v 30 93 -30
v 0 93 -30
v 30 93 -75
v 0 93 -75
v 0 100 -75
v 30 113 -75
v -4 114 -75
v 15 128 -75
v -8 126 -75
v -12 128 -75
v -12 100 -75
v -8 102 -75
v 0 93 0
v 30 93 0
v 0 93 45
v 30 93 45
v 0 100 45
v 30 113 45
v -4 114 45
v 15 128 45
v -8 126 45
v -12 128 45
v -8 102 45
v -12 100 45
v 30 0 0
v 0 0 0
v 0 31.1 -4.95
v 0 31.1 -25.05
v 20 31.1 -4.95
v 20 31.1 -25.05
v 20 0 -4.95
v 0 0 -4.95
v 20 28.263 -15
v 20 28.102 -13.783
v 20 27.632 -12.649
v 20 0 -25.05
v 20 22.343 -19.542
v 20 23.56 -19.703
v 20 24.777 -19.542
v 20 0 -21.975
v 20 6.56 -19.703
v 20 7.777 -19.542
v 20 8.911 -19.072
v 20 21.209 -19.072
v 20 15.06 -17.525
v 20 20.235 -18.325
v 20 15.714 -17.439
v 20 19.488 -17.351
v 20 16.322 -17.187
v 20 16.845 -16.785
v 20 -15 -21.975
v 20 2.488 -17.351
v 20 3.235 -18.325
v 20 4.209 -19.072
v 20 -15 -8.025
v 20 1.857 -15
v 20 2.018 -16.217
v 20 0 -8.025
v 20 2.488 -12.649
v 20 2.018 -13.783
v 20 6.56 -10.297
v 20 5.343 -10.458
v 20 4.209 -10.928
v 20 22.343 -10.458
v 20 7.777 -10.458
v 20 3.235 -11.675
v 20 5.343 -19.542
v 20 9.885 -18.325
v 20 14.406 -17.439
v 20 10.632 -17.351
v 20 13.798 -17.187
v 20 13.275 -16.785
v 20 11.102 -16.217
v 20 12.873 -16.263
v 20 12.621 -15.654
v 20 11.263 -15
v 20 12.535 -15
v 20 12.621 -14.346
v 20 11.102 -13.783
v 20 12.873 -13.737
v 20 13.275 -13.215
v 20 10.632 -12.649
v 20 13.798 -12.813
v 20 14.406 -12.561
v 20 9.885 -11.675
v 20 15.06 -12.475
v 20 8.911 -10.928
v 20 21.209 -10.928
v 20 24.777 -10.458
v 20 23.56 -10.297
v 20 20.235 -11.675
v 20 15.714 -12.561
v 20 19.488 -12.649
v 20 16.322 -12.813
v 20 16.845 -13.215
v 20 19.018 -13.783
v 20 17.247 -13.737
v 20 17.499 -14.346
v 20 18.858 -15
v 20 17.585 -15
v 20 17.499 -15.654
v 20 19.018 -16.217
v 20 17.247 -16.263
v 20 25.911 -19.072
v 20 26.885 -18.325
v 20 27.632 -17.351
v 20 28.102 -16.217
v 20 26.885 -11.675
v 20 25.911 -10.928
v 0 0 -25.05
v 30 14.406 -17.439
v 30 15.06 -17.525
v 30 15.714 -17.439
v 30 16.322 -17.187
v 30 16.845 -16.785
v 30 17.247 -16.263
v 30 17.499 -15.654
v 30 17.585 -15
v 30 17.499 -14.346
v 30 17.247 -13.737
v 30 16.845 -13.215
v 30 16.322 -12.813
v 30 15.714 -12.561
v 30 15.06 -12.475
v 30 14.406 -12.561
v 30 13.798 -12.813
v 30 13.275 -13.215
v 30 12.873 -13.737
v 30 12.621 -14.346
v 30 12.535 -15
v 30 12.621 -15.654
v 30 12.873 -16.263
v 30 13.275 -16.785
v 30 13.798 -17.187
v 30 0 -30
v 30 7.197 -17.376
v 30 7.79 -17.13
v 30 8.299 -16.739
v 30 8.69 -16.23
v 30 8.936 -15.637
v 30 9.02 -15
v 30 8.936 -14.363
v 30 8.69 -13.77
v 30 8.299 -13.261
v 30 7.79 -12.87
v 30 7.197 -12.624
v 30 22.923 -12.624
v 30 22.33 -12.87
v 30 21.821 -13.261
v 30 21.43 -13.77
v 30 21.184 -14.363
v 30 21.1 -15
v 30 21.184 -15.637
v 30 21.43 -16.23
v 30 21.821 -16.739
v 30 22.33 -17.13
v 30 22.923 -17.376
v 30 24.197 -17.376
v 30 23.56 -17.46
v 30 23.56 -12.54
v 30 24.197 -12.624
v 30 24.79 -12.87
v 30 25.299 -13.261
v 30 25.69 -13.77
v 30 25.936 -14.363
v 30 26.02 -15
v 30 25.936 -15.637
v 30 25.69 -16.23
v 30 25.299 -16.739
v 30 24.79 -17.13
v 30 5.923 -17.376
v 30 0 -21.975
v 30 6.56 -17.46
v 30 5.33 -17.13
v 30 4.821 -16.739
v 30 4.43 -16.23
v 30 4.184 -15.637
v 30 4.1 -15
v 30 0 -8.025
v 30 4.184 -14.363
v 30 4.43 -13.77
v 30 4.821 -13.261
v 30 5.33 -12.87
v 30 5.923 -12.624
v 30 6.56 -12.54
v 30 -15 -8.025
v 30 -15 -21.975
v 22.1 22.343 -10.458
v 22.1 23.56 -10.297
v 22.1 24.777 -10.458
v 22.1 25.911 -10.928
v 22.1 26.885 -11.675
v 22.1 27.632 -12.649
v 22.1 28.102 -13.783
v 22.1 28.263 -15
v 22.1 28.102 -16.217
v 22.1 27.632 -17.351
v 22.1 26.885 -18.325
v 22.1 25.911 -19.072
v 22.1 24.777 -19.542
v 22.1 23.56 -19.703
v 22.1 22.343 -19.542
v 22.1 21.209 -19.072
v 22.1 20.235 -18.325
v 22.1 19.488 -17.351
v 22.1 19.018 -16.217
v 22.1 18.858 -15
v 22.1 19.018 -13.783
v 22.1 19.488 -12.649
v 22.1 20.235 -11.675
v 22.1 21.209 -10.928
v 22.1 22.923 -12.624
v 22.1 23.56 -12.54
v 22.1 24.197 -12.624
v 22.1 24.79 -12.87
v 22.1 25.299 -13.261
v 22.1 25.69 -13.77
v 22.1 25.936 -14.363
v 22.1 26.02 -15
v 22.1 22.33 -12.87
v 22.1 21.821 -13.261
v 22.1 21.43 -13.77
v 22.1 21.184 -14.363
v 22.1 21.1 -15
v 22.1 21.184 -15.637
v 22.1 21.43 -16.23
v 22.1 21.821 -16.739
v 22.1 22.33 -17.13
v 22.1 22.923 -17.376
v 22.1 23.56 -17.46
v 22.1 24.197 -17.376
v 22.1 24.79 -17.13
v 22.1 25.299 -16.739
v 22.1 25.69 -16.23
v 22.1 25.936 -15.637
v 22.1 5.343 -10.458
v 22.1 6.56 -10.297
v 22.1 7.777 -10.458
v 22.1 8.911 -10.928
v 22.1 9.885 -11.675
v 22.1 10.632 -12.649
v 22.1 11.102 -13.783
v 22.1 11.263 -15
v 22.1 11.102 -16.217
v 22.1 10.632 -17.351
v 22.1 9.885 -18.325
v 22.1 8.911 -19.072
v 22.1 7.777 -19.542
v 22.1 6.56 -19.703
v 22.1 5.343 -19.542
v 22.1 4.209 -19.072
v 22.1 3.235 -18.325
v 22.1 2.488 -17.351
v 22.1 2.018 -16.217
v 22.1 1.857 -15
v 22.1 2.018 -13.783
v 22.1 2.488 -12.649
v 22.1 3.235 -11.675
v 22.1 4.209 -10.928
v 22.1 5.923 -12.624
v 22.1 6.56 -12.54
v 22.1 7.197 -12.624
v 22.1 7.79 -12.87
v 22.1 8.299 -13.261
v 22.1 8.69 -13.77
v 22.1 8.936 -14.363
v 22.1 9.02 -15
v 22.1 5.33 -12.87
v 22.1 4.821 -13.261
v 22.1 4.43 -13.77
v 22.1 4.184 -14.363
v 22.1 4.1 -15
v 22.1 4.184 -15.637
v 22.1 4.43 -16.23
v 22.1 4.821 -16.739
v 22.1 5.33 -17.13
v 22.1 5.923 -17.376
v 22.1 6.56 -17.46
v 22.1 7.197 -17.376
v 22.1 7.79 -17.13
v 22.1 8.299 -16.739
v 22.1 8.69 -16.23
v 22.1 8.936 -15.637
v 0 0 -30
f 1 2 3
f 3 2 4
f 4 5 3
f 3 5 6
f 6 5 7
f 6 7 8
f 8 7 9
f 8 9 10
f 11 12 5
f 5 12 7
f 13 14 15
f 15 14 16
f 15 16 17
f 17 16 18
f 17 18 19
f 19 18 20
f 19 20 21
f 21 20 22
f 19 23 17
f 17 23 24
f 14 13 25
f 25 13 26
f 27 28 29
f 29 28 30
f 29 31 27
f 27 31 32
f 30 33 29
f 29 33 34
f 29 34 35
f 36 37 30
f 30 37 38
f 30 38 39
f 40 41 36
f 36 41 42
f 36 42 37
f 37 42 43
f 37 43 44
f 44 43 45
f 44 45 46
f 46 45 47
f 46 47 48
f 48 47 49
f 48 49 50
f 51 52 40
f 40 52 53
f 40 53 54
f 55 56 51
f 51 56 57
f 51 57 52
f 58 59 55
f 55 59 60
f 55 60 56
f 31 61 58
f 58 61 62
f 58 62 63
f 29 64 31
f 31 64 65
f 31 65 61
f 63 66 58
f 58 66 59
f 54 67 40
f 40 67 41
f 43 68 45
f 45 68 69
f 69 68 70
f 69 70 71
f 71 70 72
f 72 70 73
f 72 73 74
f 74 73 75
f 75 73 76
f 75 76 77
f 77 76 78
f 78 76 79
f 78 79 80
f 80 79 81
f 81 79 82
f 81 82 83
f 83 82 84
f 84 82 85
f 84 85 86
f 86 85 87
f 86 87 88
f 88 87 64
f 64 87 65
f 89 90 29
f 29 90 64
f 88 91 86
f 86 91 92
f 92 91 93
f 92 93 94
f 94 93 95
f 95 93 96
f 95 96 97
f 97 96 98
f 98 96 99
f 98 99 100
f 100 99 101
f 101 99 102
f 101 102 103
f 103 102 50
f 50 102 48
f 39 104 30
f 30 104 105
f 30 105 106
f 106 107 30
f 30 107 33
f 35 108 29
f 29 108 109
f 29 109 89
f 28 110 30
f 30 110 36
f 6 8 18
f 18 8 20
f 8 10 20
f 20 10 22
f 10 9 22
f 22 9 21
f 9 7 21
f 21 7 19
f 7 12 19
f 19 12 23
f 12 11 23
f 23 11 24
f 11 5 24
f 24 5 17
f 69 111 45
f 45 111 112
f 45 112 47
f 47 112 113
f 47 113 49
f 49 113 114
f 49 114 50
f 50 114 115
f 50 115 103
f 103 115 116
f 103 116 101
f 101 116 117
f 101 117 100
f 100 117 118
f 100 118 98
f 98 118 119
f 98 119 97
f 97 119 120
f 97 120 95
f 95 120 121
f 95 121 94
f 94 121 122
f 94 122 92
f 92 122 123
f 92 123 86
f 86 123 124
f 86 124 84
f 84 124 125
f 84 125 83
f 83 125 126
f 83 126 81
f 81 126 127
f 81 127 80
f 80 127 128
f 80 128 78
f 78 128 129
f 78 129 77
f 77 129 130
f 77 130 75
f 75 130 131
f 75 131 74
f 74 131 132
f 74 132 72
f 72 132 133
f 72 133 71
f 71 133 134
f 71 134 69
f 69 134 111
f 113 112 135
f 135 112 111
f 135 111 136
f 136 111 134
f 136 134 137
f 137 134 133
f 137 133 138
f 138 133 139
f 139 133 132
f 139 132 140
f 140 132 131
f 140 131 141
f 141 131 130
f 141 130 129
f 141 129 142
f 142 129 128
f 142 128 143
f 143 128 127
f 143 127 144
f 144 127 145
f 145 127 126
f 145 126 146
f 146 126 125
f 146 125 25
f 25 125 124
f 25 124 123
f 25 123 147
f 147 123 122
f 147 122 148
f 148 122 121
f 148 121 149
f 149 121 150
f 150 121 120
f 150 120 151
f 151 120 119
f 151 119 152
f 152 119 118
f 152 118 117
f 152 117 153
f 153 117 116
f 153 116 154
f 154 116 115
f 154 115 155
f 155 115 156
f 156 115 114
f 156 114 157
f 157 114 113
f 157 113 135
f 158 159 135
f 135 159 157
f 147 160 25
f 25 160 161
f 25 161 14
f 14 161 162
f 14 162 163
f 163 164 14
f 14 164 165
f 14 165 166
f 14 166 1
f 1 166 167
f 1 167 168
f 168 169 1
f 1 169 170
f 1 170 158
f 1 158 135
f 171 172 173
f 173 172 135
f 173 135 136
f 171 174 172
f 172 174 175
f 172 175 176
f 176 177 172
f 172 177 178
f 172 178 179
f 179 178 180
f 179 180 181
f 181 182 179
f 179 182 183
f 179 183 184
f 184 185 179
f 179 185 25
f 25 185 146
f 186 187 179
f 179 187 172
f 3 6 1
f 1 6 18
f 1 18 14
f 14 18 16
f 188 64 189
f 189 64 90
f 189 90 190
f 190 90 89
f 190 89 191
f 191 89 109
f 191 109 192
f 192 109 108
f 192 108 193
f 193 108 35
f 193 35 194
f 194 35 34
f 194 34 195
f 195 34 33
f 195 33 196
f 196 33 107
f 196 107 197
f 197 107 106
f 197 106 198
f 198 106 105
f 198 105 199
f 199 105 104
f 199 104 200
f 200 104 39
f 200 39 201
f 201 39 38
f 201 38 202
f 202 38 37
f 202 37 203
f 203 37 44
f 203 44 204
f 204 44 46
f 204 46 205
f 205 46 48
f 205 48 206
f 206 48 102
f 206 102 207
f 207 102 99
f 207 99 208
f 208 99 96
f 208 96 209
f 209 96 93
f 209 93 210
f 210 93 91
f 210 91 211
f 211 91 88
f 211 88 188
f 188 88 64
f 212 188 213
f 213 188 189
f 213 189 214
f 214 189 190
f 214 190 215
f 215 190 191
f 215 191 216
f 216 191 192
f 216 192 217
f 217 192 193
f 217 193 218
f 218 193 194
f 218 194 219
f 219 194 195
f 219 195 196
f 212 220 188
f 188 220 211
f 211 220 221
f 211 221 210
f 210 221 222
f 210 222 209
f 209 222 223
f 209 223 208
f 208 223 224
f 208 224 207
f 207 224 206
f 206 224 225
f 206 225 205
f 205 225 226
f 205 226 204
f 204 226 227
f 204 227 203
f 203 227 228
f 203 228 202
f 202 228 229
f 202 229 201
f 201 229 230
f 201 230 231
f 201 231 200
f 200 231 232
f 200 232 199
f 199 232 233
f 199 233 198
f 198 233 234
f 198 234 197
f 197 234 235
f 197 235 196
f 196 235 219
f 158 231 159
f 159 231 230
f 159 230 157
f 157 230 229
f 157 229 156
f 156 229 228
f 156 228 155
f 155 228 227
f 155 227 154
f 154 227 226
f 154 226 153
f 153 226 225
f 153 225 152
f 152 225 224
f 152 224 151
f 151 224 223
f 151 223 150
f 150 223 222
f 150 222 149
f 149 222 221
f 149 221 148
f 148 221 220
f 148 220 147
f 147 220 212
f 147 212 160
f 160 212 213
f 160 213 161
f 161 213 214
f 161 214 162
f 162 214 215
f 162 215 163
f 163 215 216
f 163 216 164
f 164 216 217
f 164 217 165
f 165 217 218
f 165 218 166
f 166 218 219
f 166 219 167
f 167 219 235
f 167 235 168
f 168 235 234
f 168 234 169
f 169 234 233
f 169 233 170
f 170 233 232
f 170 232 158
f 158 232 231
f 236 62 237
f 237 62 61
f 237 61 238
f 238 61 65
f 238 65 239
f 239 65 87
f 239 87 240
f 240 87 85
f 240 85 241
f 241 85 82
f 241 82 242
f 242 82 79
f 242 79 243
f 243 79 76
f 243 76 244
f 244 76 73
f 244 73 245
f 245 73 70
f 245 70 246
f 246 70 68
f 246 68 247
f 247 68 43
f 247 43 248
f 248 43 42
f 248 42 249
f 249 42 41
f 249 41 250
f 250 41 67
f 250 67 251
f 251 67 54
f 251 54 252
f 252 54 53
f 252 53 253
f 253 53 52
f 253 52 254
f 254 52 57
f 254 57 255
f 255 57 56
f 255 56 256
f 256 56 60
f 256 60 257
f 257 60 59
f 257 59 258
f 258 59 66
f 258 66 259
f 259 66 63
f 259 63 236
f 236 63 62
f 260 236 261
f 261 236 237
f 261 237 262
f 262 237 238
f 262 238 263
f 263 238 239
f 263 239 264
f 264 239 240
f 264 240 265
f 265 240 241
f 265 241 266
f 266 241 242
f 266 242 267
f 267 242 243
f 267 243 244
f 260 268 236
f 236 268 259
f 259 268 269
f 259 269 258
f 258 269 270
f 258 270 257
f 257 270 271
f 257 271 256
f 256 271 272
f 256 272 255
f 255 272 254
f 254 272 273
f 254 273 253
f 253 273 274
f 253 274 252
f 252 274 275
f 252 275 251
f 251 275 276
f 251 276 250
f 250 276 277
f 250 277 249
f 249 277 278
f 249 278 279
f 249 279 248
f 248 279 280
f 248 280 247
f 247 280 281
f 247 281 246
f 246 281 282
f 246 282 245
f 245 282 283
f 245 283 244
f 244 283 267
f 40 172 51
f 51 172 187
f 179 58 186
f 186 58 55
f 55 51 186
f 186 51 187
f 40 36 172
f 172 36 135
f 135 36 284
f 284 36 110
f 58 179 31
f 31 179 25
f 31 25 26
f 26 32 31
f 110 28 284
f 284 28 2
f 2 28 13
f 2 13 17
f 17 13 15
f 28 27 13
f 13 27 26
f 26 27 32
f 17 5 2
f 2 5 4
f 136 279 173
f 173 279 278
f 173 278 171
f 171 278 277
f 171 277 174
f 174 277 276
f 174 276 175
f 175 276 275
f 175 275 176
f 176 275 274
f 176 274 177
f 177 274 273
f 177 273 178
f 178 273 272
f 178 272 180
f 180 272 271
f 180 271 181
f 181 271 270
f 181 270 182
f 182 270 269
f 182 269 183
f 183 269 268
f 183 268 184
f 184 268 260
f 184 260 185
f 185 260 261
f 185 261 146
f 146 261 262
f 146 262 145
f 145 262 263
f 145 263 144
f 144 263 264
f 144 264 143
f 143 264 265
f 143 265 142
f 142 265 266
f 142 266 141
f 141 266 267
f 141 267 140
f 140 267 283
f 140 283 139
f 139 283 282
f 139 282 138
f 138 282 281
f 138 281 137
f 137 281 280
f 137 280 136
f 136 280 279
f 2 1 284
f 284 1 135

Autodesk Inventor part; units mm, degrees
ref_plane "YZ Plane" through (0, 0, 0) normal (1, 0, 0) x (0, 1, 0)
ref_plane "XZ Plane" through (0, 0, 0) normal (0, 1, 0) x (-1, 0, 0)
sketch "Sketch1" plane through (0, 0, 0) normal (0, 0, 1) x (1, 0, 0)
  line L0 (0, 0) -> (25, 0)
  line L1 (25, 0) -> (25, 40)
  line L2 (25, 40) -> (0, 40)
  line L3 (0, 40) -> (0, 0)
  dimension "d1" = 25
  dimension "d2" = 40
  dimension "d3" = 25
extrude "Extrusion1" add sketch "Sketch1" against normal blind 30
sketch "Sketch2" plane through (25, 0, 0) normal (1, 0, 0) x (0, 0, -1)
  line L0 (0, 0) -> (30, 0) projected
  circle A0 centre (15, 6.56) radius 2.46
extrude "Extrusion2" cut sketch "Sketch2" against normal blind 30
sketch "Sketch3" plane through (0, 0, 0) normal (-1, 0, 0) x (0, 0, 1)
  line L0 (0, 0) -> (-30, 0) projected
  line L1 (-25.05, 0) -> (-4.95, 0)
  line L2 (-4.95, 0) -> (-4.95, 33.12)
  line L3 (-4.95, 33.12) -> (-25.05, 33.12)
  line L4 (-25.05, 33.12) -> (-25.05, 0)
  dimension "d11" = 20.1
extrude "Extrusion3" cut sketch "Sketch3" against normal blind 20
sketch "Sketch4" plane through (0, 0, 0) normal (0, -1, 0) x (1, 0, 0)
  line L0 (20, -4.95) -> (20, -25.05) projected
  line L1 (20, -15) -> (25, -15)
  line L2 (25, 0) -> (25, -30) projected
  line L3 (20, -8.025) -> (25, -8.025)
  line L4 (25, -8.025) -> (25, -21.975)
  line L5 (25, -21.975) -> (20, -21.975)
  line L6 (20, -21.975) -> (20, -8.025)
  line L7 (20, -8.025) -> (25, -21.975) construction
  line L8 (25, -8.025) -> (20, -21.975) construction
  line L9 (25, -12.54) -> (25, -17.46) projected
  point P0 (0, 0)
  point P1 (22.5, -15)
  dimension "d14" = 13.95
extrude "Extrusion4" add sketch "Sketch4" along normal blind 15
sketch "Sketch5" plane through (20, 0, 0) normal (-1, 0, 0) x (0, 0, 1)
  circle A0 centre (-15, 6.56) radius 2.46 projected
  circle A1 centre (-15, 6.56) radius 4.7025
  circle A2 centre (-15, 6.56) radius 2.46 projected
  circle A3 centre (-15, 6.56) radius 2.46
  point P0 (0, 0)
  dimension "d17" = 9.405
extrude "Extrusion5" cut sketch "Sketch5" against normal blind 2.1
sketch "Sketch6" plane through (25, 0, 0) normal (1, 0, 0) x (0, 0, -1)
  circle A0 centre (15, 6.56) radius 4.7025 projected
  line L0 (15, 6.56) -> (15, 23.56)
  circle A1 centre (15, 23.56) radius 2.46
  point P0 (0, 0)
  dimension "d20" = 17
  dimension "d21" = 4.92
extrude "Extrusion6" cut sketch "Sketch6" against normal blind 10 contours A1
sketch "Sketch7" plane through (20, 0, 0) normal (-1, 0, 0) x (0, 0, 1)
  circle A0 centre (-15, 23.56) radius 2.46 projected
  circle A1 centre (-15, 23.56) radius 4.7025
  point P0 (0, 0)
  dimension "d24" = 9.405
extrude "Extrusion7" cut sketch "Sketch7" against normal blind 2.1
sketch "Sketch9" plane through (25, 0, 0) normal (1, 0, 0) x (0, 0, -1)
  circle A0 centre (15, 6.56) radius 2.46 projected
  circle A1 centre (15, 6.56) radius 2.46
  circle A2 centre (15, 23.56) radius 2.46 projected
  circle A3 centre (15, 23.56) radius 2.46
  line L0 (30, 40) -> (30, 0) projected
  line L1 (30, 0) -> (30, 40)
  line L2 (30, 40) -> (0, 40)
  line L3 (0, 40) -> (0, 0)
  line L4 (0, 0) -> (8.025, 0) projected
  line L5 (21.975, 0) -> (21.975, -15)
  line L6 (21.975, -15) -> (8.025, -15)
  line L7 (8.025, -15) -> (8.025, 0)
  line L8 (0, 0) -> (8.025, 0)
  line L9 (21.975, 0) -> (30, 0)
extrude "Extrusion8" add sketch "Sketch9" along normal blind 5
sketch "Sketch10" plane through (0, 40, 0) normal (0, 1, 0) x (1, 0, 0)
  line L0 (0, 30) -> (30, 30) projected
  line L1 (30, 0) -> (0, 0) projected
  line L2 (0, 30) -> (30, 30)
  line L3 (30, 30) -> (30, 0)
  line L4 (30, 0) -> (0, 0)
  line L5 (0, 0) -> (0, 30)
extrude "Extrusion9" add sketch "Sketch10" along normal blind 30
sketch "Sketch12" plane through (30, 0, 0) normal (1, 0, 0) x (0, 0, -1)
  circle A0 centre (15, 6.56) radius 2.46 projected
  line L0 (15, 6.56) -> (15, 15.06)
  circle A1 centre (15, 15.06) radius 2.525
  point P0 (0, 0)
  dimension "d31" = 8.5
  dimension "d33" = 5.05
extrude "Extrusion10" cut sketch "Sketch12" against normal blind 30 contours A1
sketch "Sketch14" plane through (0, 0, 0) normal (0, 0, 1) x (1, 0, 0)
  line L0 (30, 70) -> (0, 70) projected
  line L1 (0, 70) -> (0, 85)
  line L2 (30, 0) -> (30, 70) projected
  line L3 (30, 113) -> (30, 70)
  line L4 (30, 105) -> (30, 100)
  line L5 (-12, 128) -> (15, 128)
  line L6 (-8, 126) -> (-12, 128)
  line L7 (-8, 126) -> (-4, 114)
  line L8 (-8, 102) -> (-12, 100)
  line L9 (-8, 102) -> (-4, 114)
  line L10 (30, 113) -> (15, 128)
  line L11 (0, 100) -> (-12, 100)
  line L12 (0, 100) -> (0, 85)
  point P0 (0, 0)
  dimension "d69" = 28
  dimension "d74" = 12
extrude "Extrusion12" add sketch "Sketch14" against normal blind 30
sketch "Sketch15" plane through (0, 0, -25.05) normal (-1, 0, 0) x (0, 0, 1)
  line L0 (0, 33.12) -> (20.1, 33.12) projected
  line L1 (20.1, 33.12) -> (20.1, 0) projected
  line L2 (0, 33.12) -> (20.1, 33.12)
  line L3 (20.1, 33.12) -> (20.1, 31.1)
  line L4 (20.1, 31.1) -> (0, 31.1)
  line L5 (0, 31.1) -> (0, 33.12)
  point P0 (25.05, 0)
  dimension "d57" = 2.02
extrude "Extrusion13" add sketch "Sketch15" against normal blind 20
sketch "Sketch21" plane through (0, 0, 0) normal (0, 0, 1) x (1, 0, 0)
  line L0 (0, 100) -> (-12, 100) projected
  line L1 (0, 100) -> (-12, 100)
  line L2 (-12, 100) -> (-8, 102) projected
  line L3 (-12, 100) -> (-8, 102)
  line L4 (-8, 102) -> (-4, 114) projected
  line L5 (-8, 102) -> (-4, 114)
  line L6 (-4, 114) -> (-8, 126) projected
  line L7 (-4, 114) -> (-8, 126)
  line L8 (-8, 126) -> (-12, 128) projected
  line L9 (-8, 126) -> (-12, 128)
  line L10 (-12, 128) -> (15, 128) projected
  line L11 (-12, 128) -> (15, 128)
  line L12 (15, 128) -> (30, 113) projected
  line L13 (15, 128) -> (30, 113)
  line L14 (30, 113) -> (30, 93)
  line L15 (30, 0) -> (30, 113) projected
  line L16 (30, 93) -> (0, 93)
  line L17 (0, 93) -> (0, 100)
  point P0 (0, 0)
  dimension "d75" = 20
  dimension "d76" = 30
extrude "Extrusion14" add sketch "Sketch21" along normal blind 45
ref_plane "Work Plane1" through (0, 0, -15) normal (0, 0, 1) x (1, 0, 0)
mirror "Mirror1" about plane through (0, 0, -15) normal (0, 0, 1) of "Extrusion14"
properties part number "rec_b_24mm_x_120mm"
